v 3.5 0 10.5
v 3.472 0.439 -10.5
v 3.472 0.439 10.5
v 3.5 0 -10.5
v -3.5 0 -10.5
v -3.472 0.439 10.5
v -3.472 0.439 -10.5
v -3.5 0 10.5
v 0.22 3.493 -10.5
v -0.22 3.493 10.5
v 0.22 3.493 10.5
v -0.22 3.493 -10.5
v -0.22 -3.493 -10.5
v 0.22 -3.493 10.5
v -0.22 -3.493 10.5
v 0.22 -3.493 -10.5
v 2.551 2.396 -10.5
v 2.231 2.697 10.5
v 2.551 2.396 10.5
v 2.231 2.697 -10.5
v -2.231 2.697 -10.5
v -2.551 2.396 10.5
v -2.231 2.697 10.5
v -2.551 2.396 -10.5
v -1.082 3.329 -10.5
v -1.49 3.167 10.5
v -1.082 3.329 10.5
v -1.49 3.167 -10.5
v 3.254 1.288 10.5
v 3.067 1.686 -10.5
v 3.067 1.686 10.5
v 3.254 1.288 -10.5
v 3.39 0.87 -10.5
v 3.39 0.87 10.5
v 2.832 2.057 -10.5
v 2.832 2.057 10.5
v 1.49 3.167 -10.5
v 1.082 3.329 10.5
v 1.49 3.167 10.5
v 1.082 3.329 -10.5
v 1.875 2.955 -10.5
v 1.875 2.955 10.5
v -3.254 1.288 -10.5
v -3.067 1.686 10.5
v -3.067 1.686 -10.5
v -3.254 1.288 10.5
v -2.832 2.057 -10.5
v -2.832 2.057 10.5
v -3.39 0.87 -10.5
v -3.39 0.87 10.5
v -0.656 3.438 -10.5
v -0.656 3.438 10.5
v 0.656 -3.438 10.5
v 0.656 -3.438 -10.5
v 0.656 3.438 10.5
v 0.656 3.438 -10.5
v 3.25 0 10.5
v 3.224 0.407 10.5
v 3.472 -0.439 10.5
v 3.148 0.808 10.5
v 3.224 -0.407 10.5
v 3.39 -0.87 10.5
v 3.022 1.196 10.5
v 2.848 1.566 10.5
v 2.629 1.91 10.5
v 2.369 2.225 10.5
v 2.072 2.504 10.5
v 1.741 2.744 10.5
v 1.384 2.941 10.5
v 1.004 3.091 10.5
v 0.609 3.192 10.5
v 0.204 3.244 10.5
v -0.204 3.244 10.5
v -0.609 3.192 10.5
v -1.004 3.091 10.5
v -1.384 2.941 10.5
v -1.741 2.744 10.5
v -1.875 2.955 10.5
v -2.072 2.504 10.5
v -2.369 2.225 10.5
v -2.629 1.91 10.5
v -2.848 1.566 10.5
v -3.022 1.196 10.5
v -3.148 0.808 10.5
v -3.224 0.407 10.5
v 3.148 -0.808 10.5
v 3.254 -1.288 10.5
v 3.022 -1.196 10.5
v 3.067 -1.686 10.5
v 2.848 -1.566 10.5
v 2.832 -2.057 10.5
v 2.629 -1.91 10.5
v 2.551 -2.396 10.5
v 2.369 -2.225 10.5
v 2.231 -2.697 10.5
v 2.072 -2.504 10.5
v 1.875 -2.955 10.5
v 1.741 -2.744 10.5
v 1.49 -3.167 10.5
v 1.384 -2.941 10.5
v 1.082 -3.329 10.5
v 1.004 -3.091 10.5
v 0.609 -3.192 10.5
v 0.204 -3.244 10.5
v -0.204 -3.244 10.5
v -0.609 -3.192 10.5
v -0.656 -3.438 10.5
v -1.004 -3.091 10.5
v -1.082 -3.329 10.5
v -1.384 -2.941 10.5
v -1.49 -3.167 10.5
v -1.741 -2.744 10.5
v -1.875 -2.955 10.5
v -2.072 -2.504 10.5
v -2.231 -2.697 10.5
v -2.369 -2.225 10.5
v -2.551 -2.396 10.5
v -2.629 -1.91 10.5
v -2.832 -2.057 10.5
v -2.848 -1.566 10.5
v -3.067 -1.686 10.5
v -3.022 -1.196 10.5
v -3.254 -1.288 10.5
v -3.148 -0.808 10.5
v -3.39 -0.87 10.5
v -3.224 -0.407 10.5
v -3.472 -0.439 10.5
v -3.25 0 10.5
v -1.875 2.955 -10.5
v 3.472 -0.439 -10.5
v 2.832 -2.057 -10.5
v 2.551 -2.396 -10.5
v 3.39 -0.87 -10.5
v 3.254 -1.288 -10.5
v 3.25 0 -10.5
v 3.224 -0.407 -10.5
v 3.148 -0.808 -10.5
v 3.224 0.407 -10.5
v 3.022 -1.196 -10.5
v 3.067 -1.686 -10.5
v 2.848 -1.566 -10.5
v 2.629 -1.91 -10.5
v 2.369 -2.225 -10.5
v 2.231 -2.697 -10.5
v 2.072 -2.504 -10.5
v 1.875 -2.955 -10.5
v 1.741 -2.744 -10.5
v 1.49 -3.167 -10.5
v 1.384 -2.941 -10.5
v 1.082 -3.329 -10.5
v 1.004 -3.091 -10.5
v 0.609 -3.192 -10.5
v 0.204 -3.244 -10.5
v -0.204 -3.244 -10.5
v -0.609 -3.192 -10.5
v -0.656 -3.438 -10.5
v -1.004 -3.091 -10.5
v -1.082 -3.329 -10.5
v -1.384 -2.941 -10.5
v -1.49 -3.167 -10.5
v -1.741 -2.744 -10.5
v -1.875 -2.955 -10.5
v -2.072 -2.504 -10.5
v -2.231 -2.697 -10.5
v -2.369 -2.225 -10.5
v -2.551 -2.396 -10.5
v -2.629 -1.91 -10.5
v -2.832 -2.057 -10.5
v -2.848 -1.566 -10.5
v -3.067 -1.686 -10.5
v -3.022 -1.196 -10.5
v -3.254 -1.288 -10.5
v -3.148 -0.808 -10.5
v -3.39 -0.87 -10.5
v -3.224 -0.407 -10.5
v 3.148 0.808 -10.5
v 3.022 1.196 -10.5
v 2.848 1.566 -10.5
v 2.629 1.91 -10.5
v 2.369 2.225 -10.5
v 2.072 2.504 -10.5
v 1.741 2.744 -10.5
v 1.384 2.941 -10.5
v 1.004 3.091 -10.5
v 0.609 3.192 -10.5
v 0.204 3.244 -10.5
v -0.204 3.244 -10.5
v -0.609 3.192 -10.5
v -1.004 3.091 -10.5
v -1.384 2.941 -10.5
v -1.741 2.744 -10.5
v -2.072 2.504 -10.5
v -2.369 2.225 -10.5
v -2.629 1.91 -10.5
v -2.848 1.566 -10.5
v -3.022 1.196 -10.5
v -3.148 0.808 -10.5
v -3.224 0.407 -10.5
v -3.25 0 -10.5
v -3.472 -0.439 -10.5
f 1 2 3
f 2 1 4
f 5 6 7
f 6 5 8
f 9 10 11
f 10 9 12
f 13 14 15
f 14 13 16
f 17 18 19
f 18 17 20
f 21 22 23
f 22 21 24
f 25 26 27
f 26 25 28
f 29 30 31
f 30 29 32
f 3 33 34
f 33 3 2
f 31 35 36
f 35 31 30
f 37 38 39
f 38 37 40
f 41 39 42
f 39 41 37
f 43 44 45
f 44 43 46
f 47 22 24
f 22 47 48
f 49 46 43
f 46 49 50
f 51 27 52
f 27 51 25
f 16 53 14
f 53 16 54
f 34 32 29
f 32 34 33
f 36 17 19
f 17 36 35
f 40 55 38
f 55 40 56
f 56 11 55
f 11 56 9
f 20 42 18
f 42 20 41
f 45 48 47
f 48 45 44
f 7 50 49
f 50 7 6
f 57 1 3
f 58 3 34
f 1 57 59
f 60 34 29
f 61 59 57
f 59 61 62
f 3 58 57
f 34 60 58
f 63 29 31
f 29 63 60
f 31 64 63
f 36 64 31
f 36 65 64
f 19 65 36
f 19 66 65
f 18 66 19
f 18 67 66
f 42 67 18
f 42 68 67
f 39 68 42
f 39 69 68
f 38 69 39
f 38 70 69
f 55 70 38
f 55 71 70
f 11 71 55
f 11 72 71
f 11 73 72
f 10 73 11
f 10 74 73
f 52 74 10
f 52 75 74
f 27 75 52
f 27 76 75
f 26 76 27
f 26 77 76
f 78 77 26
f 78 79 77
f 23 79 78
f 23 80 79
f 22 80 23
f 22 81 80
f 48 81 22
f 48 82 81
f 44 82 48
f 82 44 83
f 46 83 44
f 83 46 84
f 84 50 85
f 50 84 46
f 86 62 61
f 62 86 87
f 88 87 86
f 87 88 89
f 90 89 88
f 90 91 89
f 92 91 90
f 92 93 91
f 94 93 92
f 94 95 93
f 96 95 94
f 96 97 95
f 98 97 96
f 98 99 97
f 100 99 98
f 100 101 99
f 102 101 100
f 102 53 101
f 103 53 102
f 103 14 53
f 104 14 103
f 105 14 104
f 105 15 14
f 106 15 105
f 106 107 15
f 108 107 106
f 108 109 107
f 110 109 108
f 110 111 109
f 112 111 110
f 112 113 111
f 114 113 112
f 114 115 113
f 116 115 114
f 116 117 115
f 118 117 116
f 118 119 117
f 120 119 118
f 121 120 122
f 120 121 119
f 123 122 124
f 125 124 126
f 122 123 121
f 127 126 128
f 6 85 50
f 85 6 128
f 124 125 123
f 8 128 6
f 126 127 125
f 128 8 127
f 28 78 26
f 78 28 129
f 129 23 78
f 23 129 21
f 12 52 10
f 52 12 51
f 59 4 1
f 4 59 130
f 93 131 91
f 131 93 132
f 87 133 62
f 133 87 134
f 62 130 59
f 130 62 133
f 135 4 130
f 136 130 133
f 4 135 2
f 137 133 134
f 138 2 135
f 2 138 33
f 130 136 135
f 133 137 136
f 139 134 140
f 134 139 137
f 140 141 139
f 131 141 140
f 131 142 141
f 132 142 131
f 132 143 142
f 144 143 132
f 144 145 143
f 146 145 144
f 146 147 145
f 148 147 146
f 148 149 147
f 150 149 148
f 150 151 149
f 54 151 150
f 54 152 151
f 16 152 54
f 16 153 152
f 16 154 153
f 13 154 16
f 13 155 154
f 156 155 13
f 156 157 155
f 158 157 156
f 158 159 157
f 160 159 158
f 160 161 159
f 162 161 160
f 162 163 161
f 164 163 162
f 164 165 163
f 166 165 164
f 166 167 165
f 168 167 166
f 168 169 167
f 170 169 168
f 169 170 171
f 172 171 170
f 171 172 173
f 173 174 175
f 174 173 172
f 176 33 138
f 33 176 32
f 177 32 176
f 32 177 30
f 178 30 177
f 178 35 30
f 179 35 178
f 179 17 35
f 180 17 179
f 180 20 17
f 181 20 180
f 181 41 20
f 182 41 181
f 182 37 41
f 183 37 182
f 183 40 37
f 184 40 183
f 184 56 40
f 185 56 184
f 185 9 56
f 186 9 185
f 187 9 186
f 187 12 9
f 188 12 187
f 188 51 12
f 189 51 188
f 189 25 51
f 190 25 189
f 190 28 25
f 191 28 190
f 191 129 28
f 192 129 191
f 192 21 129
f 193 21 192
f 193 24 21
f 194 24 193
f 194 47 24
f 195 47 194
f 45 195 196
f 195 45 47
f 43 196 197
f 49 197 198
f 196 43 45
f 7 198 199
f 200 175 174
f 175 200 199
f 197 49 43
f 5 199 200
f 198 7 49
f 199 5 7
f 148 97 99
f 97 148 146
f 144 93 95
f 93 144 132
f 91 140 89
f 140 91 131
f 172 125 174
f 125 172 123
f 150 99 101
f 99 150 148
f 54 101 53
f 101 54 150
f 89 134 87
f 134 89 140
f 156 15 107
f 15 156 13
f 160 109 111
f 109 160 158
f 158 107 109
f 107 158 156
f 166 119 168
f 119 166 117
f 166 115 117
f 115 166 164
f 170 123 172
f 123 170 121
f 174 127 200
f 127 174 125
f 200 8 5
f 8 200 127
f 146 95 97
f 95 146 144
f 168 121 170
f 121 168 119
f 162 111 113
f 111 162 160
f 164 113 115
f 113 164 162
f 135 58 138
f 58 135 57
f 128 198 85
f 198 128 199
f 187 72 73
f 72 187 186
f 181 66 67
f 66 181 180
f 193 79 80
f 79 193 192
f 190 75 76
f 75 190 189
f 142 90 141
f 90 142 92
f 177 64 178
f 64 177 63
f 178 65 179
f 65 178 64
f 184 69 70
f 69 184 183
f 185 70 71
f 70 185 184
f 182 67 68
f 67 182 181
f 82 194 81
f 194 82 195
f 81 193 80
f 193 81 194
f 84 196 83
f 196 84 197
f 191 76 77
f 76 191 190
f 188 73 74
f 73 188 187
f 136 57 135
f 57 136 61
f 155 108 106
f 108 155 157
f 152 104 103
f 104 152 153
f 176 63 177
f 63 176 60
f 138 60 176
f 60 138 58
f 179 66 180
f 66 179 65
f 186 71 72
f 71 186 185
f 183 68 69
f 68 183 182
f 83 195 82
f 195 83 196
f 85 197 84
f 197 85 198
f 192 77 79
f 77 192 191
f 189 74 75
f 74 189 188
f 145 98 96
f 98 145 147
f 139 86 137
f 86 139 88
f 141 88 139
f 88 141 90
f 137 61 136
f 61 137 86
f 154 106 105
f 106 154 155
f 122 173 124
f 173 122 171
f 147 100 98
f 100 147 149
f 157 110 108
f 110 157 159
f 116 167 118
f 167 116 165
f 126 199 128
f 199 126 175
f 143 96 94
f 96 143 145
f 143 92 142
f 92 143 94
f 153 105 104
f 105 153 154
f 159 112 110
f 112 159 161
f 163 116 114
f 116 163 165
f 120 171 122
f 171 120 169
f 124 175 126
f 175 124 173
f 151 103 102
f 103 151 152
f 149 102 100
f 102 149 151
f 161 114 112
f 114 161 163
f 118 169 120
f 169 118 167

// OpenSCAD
$fn = 50;


difference() {
	union() {
		translate(v = [0, 0, -10.5000000000]) {
			cylinder(h = 21, r = 3.5000000000);
		}
	}
	union() {
		translate(v = [0, 0, -100.0000000000]) {
			cylinder(h = 200, r = 3.2500000000);
		}
	}
}
